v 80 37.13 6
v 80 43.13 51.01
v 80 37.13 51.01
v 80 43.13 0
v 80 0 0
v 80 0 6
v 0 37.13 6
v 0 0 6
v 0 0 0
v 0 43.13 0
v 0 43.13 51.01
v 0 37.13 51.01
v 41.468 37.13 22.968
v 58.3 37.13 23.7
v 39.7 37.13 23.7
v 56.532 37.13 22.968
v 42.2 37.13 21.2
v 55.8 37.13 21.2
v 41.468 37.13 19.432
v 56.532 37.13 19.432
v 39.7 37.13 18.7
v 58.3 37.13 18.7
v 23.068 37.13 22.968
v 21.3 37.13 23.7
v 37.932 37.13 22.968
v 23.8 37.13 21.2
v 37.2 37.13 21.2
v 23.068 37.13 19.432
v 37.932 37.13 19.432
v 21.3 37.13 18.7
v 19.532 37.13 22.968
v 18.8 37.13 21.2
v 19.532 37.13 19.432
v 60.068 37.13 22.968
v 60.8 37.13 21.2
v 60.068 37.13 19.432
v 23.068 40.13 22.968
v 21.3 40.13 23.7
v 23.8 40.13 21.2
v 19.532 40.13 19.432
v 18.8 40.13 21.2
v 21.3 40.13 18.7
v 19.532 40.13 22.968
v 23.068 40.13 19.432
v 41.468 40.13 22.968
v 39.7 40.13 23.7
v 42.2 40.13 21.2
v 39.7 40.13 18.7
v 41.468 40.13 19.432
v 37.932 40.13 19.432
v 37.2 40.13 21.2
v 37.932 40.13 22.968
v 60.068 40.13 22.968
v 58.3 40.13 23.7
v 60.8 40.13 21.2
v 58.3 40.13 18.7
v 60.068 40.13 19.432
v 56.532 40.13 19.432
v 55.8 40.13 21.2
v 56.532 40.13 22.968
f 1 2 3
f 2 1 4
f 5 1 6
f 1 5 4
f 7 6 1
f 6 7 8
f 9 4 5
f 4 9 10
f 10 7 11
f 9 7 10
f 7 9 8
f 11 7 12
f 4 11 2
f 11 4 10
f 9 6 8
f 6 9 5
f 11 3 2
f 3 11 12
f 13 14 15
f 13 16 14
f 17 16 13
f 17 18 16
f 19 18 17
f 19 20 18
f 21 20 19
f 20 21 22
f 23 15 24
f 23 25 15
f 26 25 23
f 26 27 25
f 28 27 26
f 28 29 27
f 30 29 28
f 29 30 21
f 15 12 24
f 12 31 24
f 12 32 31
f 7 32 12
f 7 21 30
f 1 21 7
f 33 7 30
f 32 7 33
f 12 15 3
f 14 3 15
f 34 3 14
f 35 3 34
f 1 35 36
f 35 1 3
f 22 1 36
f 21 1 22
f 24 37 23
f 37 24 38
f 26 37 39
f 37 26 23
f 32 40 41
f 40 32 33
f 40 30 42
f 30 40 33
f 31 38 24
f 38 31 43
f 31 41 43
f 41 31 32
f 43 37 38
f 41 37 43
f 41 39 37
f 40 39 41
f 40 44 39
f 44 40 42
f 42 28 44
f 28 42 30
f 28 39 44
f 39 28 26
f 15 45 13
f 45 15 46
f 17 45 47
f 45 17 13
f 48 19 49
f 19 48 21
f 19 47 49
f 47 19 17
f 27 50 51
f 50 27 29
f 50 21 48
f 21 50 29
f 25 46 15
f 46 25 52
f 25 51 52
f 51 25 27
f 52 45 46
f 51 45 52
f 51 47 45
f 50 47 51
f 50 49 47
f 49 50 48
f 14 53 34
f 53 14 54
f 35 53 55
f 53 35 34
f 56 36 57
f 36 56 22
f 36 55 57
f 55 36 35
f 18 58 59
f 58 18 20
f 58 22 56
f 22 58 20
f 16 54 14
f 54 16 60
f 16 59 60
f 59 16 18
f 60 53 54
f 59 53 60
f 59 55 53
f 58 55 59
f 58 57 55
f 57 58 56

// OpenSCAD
/* doodle-meta {"version":1,"parameters":{"width":{"label":"Overall width","description":"Changes the body width","unit":"mm","feature":"body_width"},"depth":{"label":"Overall depth","description":"Changes the body depth","unit":"mm","feature":"body_depth"},"height":{"label":"Overall height","description":"Changes the body height","unit":"mm","feature":"body_height"},"base_thickness":{"label":"Base thickness","description":"Thickness of the horizontal base flange","unit":"mm","feature":"base_thickness"},"wall_thickness":{"label":"Wall thickness","description":"Thickness of the vertical wall","unit":"mm","feature":"wall_thickness"},"hole_diameter":{"label":"Hole diameter","description":"Diameter of the three holes in the wall","unit":"mm","feature":"holes"},"hole_height":{"label":"Hole height","description":"Height of the hole centers from the build plate","unit":"mm","feature":"holes"}},"features":{"body_width":{"kind":"dimension","axis":"x","label":"Overall width"},"body_depth":{"kind":"dimension","axis":"y","label":"Overall depth"},"body_height":{"kind":"dimension","axis":"z","label":"Overall height"},"base_thickness":{"kind":"dimension","axis":"z","label":"Base thickness"},"wall_thickness":{"kind":"dimension","axis":"x","label":"Wall thickness"},"holes":{"kind":"region","label":"Wall holes","min":[{"parameter":"hole_x1","scale":1,"offset":-5},{"parameter":"wall_thickness","scale":1,"offset":-1},{"parameter":"hole_height","scale":1,"offset":-5}],"max":[{"parameter":"hole_x3","scale":1,"offset":5},{"parameter":"wall_thickness","scale":1,"offset":1},{"parameter":"hole_height","scale":1,"offset":5}]}}} */

// Top-level editable parameters (derived sizes from measured ink spans)
width = 80.0;
depth = 43.13;
height = 51.01;
base_thickness = 6.0;
wall_thickness = 6.0;
hole_diameter = 5.0;
hole_height = 21.2;

// Derived (not user-editable)
hole_x1 = 21.3;
hole_x2 = 39.7;
hole_x3 = 58.3;
eps = 0.01;

module l_bracket_body() {
    // Horizontal base plate
    cube([width, depth, base_thickness]);
    // Vertical wall at the back (Y = depth - wall_thickness .. depth)
    translate([0, depth - wall_thickness, 0])
        cube([width, wall_thickness, height]);
}

module hole_cutter(x) {
    // Through-cut along Y (perpendicular to the wall face)
    translate([x, depth - wall_thickness - eps, hole_height])
        rotate([90, 0, 0])
            cylinder(h = wall_thickness + 2 * eps, d = hole_diameter, center = true);
}

difference() {
    l_bracket_body();
    hole_cutter(hole_x1);
    hole_cutter(hole_x2);
    hole_cutter(hole_x3);
}
